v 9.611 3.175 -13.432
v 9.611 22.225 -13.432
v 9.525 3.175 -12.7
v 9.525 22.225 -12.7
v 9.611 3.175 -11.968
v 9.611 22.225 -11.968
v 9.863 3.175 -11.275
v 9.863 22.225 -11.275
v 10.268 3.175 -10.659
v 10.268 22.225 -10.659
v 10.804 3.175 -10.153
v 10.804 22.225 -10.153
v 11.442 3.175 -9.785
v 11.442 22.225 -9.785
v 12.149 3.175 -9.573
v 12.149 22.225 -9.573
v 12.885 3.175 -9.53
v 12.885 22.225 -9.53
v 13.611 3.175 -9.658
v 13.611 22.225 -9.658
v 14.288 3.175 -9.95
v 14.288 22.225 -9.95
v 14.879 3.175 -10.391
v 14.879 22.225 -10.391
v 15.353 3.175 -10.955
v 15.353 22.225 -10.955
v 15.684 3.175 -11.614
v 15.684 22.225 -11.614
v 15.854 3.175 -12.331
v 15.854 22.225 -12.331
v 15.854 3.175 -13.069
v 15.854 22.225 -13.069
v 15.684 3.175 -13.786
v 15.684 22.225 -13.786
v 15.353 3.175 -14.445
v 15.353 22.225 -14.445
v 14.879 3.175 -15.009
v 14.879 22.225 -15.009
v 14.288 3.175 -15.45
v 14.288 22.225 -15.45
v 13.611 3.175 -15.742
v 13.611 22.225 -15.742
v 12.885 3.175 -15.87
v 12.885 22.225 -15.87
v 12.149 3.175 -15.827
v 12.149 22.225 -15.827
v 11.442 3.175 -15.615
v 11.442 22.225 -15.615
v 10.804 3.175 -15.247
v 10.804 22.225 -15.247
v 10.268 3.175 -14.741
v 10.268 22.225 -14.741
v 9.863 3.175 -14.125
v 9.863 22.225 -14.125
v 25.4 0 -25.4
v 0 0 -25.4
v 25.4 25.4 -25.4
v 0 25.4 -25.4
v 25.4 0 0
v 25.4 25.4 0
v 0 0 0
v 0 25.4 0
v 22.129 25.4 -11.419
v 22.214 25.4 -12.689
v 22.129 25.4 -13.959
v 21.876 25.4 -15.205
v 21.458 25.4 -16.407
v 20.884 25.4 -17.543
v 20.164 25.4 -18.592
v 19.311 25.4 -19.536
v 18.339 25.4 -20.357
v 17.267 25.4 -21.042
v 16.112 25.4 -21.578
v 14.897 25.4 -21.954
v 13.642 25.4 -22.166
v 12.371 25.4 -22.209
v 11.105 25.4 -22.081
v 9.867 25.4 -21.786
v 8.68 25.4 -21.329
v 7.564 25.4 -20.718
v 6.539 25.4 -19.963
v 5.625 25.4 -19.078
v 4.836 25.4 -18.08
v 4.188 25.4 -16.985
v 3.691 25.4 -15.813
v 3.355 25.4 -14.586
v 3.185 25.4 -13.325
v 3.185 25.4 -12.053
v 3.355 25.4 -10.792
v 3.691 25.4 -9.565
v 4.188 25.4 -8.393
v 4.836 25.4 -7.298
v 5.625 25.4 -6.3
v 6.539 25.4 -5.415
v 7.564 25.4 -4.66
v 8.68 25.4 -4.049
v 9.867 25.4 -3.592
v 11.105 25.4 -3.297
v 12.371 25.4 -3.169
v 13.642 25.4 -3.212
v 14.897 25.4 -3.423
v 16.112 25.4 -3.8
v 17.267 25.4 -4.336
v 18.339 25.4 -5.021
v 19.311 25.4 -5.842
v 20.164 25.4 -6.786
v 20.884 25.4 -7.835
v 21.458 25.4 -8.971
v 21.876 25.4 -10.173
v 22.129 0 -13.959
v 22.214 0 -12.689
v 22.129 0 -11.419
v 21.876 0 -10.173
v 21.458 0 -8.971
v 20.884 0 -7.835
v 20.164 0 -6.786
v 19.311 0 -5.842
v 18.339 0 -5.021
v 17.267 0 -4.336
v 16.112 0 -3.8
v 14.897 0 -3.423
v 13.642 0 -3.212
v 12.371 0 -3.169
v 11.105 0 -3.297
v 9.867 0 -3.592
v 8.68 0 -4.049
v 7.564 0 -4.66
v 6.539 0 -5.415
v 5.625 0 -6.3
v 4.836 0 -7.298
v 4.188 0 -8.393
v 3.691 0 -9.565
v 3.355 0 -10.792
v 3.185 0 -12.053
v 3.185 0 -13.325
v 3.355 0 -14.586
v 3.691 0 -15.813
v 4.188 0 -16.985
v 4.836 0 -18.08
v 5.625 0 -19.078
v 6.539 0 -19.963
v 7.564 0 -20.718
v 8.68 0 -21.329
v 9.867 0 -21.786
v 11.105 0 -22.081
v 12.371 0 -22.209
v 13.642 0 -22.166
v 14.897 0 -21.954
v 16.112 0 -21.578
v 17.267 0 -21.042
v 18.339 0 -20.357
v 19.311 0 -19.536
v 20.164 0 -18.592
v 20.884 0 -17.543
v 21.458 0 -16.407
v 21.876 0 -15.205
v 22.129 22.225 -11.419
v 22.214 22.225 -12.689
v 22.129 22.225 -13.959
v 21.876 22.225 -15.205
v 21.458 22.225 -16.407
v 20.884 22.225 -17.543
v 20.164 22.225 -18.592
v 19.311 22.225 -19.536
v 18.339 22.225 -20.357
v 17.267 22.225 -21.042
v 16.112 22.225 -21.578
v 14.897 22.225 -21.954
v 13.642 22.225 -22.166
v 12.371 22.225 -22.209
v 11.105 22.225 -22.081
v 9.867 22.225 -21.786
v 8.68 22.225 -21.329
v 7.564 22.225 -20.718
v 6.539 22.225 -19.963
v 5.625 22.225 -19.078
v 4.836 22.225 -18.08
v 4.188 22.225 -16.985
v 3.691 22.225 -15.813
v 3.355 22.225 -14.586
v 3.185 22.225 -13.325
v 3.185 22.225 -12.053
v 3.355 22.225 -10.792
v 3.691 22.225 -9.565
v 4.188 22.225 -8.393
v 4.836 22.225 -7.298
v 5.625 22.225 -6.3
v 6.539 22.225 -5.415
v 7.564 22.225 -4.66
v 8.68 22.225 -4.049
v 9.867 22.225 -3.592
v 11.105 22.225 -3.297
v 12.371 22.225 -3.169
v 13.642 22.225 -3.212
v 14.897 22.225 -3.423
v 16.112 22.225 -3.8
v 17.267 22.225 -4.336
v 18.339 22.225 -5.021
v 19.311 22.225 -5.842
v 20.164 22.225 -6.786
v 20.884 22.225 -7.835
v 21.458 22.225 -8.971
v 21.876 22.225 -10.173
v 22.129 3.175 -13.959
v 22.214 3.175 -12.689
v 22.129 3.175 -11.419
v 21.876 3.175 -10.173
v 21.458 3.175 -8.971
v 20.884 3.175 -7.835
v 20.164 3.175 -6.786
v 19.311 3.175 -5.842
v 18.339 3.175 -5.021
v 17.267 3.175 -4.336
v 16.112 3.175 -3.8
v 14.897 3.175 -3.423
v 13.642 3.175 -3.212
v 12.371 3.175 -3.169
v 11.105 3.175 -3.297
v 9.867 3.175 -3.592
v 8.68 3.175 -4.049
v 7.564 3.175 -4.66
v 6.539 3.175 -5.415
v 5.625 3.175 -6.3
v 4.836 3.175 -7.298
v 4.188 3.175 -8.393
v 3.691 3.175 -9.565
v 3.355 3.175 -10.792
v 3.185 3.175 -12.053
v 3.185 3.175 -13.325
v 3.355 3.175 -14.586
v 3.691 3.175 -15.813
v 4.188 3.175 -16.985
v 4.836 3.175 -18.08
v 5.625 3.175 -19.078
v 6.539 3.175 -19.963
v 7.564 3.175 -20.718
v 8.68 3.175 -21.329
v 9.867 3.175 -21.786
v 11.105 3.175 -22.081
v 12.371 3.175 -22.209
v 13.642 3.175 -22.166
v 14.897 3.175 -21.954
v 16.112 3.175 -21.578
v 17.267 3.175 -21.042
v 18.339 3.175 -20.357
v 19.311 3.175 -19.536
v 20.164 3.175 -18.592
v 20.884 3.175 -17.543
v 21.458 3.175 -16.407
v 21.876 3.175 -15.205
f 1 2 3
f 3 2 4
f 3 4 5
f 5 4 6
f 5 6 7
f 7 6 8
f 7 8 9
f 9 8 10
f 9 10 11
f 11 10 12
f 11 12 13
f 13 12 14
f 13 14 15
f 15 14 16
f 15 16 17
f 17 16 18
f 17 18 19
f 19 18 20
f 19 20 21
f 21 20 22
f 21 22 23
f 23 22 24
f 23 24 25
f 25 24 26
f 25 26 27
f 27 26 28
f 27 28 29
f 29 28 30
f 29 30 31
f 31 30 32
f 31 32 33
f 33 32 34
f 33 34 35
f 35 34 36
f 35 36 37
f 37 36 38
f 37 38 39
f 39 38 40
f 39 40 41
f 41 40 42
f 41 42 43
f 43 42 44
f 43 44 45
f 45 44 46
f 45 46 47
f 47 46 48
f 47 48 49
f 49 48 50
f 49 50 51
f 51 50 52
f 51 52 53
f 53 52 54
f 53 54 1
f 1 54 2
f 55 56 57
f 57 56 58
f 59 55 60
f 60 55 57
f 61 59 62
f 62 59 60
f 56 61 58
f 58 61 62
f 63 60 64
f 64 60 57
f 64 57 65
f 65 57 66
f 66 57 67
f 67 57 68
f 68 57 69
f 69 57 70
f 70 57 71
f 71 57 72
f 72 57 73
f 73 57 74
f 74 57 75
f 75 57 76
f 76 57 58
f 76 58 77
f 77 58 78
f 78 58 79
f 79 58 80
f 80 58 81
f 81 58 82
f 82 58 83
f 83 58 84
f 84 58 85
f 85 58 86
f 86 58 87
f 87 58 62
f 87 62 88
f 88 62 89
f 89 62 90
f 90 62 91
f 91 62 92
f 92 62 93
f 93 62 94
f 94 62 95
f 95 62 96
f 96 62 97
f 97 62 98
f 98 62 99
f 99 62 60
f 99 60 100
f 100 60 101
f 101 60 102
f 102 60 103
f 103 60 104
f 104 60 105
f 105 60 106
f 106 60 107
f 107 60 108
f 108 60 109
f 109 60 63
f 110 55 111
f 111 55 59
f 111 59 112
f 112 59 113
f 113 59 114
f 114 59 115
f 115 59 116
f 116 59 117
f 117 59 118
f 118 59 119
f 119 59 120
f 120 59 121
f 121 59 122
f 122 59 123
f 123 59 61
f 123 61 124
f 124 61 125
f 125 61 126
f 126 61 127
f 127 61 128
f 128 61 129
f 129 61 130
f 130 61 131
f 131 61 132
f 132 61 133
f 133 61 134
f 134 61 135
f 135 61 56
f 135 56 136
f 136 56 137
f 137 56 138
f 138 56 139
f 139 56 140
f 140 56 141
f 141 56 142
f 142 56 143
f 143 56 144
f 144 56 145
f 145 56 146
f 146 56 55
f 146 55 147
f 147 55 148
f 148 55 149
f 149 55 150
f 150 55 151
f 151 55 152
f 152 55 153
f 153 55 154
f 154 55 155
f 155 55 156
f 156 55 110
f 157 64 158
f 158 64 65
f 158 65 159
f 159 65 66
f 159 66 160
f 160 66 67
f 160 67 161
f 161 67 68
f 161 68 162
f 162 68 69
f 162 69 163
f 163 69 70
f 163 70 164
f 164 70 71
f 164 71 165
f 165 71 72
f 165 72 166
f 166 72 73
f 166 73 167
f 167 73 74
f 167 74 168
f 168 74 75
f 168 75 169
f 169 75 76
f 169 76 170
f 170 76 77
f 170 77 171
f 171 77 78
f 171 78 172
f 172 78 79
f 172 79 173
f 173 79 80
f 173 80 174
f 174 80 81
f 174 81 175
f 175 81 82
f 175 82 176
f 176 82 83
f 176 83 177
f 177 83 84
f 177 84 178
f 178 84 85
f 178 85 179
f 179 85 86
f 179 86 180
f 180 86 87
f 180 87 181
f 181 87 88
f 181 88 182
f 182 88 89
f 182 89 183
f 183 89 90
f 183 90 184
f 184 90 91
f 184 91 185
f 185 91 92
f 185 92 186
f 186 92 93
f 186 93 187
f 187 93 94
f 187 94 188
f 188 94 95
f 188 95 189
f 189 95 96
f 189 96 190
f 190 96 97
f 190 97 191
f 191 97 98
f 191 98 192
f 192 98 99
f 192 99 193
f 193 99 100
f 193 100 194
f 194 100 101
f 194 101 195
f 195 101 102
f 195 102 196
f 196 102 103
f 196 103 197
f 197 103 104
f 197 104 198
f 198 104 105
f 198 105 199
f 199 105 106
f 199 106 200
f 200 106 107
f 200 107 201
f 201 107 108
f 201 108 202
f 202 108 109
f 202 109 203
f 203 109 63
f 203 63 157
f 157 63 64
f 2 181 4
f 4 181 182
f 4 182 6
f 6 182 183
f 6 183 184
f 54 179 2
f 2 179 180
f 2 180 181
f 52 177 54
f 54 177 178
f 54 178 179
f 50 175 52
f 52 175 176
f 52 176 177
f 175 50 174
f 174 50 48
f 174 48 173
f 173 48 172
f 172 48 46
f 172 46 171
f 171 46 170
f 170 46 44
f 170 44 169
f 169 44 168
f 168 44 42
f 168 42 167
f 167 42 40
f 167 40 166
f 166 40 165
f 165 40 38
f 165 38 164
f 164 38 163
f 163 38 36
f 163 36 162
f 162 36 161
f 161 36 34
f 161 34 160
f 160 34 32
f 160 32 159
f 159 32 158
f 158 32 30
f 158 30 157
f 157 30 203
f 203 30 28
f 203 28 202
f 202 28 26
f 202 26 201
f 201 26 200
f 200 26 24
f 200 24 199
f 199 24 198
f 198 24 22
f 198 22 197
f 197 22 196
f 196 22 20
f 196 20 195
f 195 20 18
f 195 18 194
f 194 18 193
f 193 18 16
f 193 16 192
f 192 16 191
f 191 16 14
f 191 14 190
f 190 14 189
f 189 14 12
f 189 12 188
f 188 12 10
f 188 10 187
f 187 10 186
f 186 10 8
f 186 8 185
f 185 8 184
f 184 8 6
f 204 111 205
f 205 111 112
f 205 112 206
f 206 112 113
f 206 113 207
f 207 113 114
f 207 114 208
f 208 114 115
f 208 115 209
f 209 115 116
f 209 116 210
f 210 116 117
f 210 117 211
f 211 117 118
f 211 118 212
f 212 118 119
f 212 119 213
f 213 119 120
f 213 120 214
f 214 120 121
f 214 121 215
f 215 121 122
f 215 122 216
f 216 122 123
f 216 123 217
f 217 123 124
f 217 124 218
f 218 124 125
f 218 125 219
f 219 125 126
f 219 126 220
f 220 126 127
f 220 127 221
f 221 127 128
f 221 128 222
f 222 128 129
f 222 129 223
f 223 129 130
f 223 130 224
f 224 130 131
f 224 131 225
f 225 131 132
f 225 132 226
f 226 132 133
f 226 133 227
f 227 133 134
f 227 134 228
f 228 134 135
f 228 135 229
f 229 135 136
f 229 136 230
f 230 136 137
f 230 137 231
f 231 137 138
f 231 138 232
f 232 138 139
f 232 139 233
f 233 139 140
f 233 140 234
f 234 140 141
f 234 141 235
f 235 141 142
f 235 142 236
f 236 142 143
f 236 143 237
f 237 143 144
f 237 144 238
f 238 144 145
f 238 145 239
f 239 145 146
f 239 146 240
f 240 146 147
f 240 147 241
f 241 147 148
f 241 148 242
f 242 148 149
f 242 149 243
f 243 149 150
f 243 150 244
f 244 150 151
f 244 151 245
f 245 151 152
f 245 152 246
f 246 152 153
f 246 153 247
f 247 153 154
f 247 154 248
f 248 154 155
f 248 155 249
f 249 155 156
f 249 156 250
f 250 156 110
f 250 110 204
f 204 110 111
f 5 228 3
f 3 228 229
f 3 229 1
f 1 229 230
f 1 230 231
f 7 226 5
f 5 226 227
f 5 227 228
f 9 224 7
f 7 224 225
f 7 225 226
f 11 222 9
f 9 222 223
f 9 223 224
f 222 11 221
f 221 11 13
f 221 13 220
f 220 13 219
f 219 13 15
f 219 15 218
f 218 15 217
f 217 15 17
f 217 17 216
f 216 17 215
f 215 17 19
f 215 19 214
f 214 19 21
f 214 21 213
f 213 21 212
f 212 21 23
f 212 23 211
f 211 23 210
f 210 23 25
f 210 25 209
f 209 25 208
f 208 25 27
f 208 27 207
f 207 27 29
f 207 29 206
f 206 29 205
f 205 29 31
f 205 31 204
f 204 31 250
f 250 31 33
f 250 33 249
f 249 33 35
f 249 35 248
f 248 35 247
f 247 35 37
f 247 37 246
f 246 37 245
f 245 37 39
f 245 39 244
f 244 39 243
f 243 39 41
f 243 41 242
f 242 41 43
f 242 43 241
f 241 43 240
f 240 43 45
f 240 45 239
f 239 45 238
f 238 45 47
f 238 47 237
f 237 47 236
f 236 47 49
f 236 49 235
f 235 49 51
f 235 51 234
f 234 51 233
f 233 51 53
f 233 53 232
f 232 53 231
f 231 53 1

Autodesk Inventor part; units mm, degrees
ref_plane "YZ Plane" through (0, 0, 0) normal (1, 0, 0) x (0, 1, 0)
ref_plane "XZ Plane" through (0, 0, 0) normal (0, 1, 0) x (-1, 0, 0)
ref_plane "XY Plane" through (0, 0, 0) normal (0, 0, 1) x (1, 0, 0)
sketch "Sketch1" plane through (0, 0, 0) normal (0, 1, 0) x (-1, 0, 0)
  line L0 (0, 0) -> (-25.4, 0)
  line L1 (-25.4, 0) -> (-25.4, -25.4)
  line L2 (-25.4, -25.4) -> (0, -25.4)
  line L3 (0, -25.4) -> (0, 0)
  line L4 (0, 0) -> (-25.4, -25.4) construction
  line L5 (0, -25.4) -> (-25.4, 0) construction
  circle A0 centre (-12.7, -12.7) radius 3.175
  dimension "d0" = 25.4
  dimension "d1" = 25.4
  dimension "d3" = 6.35
extrude "Extrusion1" add sketch "Sketch1" along normal blind 25.4
sketch "Sketch2" plane through (0, 25.4, 0) normal (0, 1, 0) x (1, 0, 0)
  circle A0 centre (12.689, 12.689) radius 9.525
  point P0 (0, 0)
  dimension "d6" = 19.05
extrude "Extrusion2" cut sketch "Sketch2" against normal blind 3.175
sketch "Sketch3" plane through (0, 0, 0) normal (0, -1, 0) x (1, 0, 0)
  circle A0 centre (12.689, -12.689) radius 9.525 projected
  circle A1 centre (12.689, -12.689) radius 9.525
  point P0 (0, 0)
  dimension "d9" = 19.05
extrude "Extrusion3" cut sketch "Sketch3" against normal blind 3.175
properties part number "MountingBracket_3"
